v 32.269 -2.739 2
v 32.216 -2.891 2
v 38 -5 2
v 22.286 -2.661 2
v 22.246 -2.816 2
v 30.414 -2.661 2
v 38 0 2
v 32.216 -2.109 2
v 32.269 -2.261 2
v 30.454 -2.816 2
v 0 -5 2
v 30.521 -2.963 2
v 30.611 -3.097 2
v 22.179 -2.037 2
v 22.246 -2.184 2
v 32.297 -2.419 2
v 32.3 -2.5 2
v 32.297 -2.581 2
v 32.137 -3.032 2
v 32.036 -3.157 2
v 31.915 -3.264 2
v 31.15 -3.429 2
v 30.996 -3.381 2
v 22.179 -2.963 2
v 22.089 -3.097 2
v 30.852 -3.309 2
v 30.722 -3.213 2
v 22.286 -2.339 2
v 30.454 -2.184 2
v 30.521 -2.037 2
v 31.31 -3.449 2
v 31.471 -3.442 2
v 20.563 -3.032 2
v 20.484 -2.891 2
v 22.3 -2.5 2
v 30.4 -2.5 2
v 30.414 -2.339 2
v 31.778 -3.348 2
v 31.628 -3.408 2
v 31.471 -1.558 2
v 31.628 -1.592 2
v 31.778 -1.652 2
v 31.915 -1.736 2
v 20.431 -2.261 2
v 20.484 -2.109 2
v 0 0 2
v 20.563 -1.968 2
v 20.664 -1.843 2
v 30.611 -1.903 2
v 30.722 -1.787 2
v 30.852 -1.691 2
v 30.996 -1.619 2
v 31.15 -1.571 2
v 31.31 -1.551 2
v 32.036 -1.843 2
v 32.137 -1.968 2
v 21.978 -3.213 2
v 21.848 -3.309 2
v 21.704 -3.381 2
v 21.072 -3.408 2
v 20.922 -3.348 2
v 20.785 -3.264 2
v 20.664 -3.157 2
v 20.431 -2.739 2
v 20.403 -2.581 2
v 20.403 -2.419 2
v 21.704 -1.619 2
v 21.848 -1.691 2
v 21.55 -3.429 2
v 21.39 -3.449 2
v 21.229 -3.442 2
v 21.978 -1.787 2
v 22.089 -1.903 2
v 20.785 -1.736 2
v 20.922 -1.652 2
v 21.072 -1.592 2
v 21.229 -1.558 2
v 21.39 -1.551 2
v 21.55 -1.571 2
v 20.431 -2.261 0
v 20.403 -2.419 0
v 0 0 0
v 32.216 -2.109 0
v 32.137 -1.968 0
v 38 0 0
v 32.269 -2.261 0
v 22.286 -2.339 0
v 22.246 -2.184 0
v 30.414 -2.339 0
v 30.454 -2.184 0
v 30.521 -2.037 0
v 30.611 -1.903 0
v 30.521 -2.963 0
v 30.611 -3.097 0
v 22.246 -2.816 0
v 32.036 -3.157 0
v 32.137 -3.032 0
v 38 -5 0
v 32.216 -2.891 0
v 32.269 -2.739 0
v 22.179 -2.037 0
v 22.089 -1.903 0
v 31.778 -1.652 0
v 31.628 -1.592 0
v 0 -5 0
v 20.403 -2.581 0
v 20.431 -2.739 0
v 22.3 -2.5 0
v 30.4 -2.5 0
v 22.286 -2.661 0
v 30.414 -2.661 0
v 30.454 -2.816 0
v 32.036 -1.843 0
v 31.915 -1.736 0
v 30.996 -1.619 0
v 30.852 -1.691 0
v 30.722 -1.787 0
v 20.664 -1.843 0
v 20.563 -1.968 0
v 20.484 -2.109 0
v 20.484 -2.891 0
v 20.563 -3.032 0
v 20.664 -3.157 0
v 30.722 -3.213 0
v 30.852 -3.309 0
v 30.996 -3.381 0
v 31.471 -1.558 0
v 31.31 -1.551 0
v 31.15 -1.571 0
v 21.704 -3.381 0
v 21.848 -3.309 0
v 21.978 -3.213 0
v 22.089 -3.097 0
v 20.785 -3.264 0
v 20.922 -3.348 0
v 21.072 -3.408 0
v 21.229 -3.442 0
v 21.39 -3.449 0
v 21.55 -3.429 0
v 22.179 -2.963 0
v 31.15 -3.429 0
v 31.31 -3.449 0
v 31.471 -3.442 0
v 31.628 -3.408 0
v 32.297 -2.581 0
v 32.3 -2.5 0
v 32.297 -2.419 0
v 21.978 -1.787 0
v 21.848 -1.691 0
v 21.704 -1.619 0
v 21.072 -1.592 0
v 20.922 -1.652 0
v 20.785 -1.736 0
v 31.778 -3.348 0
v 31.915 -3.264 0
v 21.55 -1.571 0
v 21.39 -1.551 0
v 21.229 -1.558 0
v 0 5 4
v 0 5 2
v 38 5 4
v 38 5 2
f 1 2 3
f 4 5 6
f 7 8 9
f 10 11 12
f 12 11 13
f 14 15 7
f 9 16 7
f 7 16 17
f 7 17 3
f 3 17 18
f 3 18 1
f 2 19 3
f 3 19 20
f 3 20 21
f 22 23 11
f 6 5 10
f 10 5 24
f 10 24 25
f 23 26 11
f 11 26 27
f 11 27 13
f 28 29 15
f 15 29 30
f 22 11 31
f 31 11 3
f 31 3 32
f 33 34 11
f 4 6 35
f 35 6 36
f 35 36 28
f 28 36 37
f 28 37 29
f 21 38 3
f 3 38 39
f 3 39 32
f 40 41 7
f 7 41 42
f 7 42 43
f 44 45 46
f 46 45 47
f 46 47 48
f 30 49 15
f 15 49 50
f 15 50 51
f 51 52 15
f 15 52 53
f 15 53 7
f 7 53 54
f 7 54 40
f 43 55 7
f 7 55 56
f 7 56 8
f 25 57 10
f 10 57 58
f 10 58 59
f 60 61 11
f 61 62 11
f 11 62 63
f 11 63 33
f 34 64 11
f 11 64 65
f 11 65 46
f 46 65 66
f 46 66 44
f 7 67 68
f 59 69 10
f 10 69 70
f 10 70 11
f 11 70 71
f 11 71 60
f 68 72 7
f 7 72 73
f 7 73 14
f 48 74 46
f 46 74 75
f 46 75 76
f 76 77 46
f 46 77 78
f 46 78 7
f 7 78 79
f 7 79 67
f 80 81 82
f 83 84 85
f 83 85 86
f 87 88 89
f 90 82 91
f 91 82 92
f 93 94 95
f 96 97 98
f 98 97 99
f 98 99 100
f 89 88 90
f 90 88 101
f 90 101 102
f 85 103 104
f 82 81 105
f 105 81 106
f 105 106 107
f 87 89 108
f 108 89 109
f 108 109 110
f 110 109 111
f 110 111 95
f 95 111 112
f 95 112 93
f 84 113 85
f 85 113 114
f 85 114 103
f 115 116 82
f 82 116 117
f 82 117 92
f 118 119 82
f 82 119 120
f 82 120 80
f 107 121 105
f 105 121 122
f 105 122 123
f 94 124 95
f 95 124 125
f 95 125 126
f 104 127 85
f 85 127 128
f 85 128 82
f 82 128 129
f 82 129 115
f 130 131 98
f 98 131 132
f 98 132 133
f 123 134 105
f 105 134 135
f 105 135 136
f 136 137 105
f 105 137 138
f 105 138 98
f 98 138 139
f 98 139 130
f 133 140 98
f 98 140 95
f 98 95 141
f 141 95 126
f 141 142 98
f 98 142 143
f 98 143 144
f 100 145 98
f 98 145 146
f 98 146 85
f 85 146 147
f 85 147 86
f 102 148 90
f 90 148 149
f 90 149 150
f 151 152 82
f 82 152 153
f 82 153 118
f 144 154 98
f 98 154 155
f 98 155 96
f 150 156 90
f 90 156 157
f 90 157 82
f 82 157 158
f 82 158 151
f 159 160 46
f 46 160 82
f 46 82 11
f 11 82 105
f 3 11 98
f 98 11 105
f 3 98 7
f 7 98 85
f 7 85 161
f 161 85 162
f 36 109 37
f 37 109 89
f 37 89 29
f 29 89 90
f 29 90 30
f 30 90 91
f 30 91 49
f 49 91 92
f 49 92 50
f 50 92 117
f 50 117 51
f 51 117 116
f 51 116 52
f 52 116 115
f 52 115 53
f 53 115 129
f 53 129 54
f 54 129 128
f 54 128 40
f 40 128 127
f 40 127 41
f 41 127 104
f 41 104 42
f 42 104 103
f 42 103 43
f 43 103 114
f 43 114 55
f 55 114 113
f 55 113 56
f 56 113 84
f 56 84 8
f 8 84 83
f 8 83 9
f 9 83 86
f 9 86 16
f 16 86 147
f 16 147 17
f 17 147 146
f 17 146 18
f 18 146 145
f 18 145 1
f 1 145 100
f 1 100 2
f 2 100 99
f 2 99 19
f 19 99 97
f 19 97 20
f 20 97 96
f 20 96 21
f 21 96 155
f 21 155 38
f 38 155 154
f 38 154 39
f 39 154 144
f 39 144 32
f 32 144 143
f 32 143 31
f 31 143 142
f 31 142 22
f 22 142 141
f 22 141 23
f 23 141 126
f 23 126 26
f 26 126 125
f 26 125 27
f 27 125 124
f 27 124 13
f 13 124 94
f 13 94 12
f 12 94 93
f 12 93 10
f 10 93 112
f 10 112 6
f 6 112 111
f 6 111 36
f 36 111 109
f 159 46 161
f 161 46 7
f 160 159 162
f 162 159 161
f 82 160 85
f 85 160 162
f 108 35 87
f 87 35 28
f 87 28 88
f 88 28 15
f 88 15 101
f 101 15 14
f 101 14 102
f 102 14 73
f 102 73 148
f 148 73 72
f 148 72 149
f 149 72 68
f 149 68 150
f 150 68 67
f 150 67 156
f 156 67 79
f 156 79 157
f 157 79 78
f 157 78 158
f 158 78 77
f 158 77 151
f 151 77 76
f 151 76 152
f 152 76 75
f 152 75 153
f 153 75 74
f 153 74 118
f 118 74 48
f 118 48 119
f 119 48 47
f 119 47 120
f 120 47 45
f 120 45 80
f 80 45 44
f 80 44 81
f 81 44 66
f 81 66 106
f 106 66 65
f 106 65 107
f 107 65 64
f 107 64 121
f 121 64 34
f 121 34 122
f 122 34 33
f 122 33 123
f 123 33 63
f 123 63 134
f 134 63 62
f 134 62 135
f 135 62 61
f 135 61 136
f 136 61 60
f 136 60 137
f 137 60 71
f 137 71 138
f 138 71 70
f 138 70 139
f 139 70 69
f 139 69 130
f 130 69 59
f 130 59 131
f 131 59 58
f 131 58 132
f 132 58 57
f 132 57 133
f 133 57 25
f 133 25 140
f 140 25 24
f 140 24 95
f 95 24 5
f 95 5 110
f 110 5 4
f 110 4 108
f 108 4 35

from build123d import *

# Parameters (mm, degrees)
SKETCH_1_W          = 38
SKETCH_1_H          = 5
SKETCH_1_R          = 0.95
EXTRUDE_1_DEPTH     = 2
EXTRUDE_2_DEPTH     = 38
SKETCH_3_R          = 0.95
CUT_EXTRUDE_1_DEPTH = 12


with BuildPart() as part:
    # 草图1 → 凸台-拉伸1 (new body)
    with BuildSketch(Plane.XY):
        with Locations((19, -2.5)):
            Rectangle(SKETCH_1_W, SKETCH_1_H)
        with Locations((31.35, -2.5)):
            Circle(SKETCH_1_R, mode=Mode.SUBTRACT)
    extrude(amount=EXTRUDE_1_DEPTH)

    # 草图2 → 凸台-拉伸2 (add)
    with BuildSketch(Plane(origin=(38, 0, 0), x_dir=(0, 0, -1), z_dir=(1, 0, 0))):
        Polygon((0, 0), (-2, 5), (-4, 5), (-2, 0), align=None)
    extrude(amount=-EXTRUDE_2_DEPTH)

    # 草图3 → 切除-拉伸1 (cut)
    with BuildSketch(Plane.XY.offset(2)):
        with Locations((21.35, -2.5)):
            Circle(SKETCH_3_R)
    extrude(amount=-CUT_EXTRUDE_1_DEPTH, mode=Mode.SUBTRACT)


solid = part.part
